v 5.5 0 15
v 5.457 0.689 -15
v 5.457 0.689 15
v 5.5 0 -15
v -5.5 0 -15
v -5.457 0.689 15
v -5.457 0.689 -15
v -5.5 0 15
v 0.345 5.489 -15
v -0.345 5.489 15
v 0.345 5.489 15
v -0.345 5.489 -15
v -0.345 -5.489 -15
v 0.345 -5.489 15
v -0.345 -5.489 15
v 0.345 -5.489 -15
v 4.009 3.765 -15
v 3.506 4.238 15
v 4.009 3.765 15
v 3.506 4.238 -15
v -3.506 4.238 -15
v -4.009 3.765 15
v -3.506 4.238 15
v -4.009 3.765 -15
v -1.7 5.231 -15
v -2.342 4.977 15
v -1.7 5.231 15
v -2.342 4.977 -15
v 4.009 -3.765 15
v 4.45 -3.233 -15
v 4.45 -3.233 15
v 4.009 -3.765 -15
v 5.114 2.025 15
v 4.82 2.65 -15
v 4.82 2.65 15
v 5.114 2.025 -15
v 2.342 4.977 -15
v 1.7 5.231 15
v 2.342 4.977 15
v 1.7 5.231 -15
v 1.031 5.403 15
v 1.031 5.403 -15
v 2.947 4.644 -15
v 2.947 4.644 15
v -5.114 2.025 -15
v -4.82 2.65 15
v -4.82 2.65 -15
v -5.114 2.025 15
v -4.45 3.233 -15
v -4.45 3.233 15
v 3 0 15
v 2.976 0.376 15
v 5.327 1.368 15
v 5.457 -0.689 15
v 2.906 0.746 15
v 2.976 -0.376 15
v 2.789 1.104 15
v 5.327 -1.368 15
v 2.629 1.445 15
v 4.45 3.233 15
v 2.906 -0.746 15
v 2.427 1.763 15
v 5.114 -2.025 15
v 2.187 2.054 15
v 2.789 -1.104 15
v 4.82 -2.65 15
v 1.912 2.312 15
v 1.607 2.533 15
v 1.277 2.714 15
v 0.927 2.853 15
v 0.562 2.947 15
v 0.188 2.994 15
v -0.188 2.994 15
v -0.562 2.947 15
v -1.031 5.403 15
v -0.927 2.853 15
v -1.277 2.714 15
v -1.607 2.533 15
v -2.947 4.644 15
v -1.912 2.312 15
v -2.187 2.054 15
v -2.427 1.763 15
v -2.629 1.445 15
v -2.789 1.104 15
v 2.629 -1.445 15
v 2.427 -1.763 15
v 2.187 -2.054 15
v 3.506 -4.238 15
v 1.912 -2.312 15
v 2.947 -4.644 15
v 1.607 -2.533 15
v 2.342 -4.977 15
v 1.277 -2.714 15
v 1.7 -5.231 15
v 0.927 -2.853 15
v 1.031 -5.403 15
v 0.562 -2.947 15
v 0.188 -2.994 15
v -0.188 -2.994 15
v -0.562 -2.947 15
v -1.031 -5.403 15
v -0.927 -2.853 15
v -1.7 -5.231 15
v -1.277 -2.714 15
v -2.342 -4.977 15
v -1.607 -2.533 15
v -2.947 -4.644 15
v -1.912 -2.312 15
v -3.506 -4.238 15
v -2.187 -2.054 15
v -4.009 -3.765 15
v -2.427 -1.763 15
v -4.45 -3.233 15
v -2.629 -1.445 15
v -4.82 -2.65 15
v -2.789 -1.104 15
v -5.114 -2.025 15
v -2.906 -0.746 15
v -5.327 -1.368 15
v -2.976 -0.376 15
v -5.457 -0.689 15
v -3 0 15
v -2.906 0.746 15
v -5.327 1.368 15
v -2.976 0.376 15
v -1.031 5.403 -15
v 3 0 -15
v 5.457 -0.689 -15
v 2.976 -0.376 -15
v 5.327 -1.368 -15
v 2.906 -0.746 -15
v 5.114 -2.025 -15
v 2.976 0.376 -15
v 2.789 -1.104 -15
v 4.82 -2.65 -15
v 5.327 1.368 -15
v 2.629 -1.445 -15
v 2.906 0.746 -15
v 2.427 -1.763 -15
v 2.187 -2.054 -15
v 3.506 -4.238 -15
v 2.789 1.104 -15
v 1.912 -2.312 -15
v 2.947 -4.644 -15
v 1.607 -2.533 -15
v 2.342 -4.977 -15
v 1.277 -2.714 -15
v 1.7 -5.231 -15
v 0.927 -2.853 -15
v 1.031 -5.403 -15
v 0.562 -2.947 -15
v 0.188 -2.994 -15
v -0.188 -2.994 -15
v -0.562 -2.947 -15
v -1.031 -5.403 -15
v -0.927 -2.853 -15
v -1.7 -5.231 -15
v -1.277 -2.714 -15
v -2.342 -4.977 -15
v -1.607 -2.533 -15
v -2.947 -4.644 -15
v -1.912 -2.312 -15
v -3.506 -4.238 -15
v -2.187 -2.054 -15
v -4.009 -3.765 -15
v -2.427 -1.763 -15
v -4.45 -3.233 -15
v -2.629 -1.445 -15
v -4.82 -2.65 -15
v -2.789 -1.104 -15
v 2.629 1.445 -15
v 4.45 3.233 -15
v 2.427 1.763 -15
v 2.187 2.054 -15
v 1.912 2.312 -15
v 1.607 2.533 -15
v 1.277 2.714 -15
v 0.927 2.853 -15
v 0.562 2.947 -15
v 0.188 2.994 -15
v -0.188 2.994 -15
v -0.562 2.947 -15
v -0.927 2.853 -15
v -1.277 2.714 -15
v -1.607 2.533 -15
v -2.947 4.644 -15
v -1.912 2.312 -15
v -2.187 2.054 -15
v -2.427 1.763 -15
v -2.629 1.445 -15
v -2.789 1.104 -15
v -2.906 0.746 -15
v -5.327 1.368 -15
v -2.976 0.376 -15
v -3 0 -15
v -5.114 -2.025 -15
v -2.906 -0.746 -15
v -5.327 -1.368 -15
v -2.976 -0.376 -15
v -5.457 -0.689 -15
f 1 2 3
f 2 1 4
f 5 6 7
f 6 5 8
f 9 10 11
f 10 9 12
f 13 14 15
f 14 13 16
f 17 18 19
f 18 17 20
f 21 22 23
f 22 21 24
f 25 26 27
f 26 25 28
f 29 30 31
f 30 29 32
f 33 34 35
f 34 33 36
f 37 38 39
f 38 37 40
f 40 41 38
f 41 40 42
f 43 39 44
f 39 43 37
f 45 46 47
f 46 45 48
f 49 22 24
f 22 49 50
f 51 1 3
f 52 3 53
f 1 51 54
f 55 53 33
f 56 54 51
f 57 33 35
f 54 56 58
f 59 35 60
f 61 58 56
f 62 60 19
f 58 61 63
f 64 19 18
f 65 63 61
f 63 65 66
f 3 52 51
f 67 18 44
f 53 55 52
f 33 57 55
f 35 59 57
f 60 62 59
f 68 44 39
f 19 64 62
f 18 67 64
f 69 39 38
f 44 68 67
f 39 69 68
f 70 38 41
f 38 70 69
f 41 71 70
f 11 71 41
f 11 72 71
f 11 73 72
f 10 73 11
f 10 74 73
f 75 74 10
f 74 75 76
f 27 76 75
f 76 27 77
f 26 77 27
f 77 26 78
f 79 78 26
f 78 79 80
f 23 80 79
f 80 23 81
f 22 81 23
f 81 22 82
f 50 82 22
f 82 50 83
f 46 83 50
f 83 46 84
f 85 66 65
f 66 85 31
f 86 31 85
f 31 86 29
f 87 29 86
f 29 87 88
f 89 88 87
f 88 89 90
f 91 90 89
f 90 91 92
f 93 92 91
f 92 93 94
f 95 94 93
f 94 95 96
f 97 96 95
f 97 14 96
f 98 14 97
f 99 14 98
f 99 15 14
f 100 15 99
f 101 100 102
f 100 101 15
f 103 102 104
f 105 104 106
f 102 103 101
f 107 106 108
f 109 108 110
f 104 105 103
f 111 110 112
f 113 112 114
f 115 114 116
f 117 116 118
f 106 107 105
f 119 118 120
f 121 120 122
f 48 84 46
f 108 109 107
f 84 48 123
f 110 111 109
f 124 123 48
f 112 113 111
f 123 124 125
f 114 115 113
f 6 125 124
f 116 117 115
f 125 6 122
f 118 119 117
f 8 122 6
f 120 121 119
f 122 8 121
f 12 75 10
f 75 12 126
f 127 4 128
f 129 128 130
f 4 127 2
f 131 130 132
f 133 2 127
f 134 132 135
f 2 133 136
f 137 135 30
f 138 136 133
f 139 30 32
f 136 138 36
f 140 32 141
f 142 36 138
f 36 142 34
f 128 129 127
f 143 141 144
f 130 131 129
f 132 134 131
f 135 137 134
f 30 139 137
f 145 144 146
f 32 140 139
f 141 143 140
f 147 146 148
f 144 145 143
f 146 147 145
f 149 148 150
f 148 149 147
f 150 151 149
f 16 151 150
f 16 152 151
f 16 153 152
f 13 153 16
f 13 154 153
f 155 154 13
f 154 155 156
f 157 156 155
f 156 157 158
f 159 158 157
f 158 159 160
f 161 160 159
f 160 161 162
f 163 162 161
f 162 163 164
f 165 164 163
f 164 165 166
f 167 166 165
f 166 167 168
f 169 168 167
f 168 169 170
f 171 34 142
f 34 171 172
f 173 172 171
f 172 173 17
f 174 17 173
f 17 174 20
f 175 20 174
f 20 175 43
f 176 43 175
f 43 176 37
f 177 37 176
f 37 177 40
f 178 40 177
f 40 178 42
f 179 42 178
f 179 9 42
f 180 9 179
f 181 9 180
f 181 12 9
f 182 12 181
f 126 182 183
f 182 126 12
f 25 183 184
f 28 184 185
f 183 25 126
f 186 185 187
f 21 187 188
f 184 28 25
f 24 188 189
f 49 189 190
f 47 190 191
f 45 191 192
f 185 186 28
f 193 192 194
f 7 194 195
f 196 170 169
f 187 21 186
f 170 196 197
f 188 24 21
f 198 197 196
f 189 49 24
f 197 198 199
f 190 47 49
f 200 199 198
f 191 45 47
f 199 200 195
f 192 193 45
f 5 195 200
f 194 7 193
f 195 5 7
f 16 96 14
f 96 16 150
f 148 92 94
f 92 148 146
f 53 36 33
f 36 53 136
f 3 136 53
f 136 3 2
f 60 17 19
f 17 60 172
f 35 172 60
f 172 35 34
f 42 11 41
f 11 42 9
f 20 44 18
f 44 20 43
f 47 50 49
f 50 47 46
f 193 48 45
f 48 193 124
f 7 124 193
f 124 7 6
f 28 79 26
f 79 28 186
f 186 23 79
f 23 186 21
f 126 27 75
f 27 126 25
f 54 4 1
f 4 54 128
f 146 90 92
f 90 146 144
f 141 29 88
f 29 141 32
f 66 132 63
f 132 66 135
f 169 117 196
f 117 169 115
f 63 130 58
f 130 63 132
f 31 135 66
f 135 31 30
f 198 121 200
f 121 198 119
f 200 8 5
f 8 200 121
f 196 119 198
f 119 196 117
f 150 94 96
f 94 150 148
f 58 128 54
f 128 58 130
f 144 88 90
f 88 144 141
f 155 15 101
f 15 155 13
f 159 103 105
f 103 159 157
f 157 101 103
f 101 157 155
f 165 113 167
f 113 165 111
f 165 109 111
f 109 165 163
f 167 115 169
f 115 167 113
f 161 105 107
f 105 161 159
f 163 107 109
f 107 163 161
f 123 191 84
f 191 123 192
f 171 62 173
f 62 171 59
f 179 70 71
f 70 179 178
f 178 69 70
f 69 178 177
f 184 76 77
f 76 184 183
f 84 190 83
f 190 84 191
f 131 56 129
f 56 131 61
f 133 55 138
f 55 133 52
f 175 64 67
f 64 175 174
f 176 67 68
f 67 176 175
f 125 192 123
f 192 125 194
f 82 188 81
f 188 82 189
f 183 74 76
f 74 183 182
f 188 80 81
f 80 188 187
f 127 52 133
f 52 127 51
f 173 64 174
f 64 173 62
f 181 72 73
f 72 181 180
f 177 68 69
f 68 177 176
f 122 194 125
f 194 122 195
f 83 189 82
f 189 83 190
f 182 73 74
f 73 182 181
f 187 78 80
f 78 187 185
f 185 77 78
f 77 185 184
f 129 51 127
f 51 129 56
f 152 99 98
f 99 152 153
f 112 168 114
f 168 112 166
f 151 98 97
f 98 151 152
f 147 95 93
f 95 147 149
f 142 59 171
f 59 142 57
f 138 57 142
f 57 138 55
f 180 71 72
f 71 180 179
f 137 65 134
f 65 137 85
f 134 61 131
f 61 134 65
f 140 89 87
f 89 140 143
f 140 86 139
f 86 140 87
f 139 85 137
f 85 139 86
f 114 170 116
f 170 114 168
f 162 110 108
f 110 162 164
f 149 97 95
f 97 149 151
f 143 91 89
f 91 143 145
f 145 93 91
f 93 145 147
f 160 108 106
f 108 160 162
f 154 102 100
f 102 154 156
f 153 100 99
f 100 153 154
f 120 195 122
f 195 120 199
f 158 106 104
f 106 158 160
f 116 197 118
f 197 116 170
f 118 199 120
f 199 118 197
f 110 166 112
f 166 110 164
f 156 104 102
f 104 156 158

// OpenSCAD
$fn = 50;


difference() {
	union() {
		translate(v = [0, 0, -15.0000000000]) {
			cylinder(h = 30, r = 5.5000000000);
		}
	}
	union() {
		translate(v = [0, 0, -100.0000000000]) {
			cylinder(h = 200, r = 3.0000000000);
		}
	}
}
